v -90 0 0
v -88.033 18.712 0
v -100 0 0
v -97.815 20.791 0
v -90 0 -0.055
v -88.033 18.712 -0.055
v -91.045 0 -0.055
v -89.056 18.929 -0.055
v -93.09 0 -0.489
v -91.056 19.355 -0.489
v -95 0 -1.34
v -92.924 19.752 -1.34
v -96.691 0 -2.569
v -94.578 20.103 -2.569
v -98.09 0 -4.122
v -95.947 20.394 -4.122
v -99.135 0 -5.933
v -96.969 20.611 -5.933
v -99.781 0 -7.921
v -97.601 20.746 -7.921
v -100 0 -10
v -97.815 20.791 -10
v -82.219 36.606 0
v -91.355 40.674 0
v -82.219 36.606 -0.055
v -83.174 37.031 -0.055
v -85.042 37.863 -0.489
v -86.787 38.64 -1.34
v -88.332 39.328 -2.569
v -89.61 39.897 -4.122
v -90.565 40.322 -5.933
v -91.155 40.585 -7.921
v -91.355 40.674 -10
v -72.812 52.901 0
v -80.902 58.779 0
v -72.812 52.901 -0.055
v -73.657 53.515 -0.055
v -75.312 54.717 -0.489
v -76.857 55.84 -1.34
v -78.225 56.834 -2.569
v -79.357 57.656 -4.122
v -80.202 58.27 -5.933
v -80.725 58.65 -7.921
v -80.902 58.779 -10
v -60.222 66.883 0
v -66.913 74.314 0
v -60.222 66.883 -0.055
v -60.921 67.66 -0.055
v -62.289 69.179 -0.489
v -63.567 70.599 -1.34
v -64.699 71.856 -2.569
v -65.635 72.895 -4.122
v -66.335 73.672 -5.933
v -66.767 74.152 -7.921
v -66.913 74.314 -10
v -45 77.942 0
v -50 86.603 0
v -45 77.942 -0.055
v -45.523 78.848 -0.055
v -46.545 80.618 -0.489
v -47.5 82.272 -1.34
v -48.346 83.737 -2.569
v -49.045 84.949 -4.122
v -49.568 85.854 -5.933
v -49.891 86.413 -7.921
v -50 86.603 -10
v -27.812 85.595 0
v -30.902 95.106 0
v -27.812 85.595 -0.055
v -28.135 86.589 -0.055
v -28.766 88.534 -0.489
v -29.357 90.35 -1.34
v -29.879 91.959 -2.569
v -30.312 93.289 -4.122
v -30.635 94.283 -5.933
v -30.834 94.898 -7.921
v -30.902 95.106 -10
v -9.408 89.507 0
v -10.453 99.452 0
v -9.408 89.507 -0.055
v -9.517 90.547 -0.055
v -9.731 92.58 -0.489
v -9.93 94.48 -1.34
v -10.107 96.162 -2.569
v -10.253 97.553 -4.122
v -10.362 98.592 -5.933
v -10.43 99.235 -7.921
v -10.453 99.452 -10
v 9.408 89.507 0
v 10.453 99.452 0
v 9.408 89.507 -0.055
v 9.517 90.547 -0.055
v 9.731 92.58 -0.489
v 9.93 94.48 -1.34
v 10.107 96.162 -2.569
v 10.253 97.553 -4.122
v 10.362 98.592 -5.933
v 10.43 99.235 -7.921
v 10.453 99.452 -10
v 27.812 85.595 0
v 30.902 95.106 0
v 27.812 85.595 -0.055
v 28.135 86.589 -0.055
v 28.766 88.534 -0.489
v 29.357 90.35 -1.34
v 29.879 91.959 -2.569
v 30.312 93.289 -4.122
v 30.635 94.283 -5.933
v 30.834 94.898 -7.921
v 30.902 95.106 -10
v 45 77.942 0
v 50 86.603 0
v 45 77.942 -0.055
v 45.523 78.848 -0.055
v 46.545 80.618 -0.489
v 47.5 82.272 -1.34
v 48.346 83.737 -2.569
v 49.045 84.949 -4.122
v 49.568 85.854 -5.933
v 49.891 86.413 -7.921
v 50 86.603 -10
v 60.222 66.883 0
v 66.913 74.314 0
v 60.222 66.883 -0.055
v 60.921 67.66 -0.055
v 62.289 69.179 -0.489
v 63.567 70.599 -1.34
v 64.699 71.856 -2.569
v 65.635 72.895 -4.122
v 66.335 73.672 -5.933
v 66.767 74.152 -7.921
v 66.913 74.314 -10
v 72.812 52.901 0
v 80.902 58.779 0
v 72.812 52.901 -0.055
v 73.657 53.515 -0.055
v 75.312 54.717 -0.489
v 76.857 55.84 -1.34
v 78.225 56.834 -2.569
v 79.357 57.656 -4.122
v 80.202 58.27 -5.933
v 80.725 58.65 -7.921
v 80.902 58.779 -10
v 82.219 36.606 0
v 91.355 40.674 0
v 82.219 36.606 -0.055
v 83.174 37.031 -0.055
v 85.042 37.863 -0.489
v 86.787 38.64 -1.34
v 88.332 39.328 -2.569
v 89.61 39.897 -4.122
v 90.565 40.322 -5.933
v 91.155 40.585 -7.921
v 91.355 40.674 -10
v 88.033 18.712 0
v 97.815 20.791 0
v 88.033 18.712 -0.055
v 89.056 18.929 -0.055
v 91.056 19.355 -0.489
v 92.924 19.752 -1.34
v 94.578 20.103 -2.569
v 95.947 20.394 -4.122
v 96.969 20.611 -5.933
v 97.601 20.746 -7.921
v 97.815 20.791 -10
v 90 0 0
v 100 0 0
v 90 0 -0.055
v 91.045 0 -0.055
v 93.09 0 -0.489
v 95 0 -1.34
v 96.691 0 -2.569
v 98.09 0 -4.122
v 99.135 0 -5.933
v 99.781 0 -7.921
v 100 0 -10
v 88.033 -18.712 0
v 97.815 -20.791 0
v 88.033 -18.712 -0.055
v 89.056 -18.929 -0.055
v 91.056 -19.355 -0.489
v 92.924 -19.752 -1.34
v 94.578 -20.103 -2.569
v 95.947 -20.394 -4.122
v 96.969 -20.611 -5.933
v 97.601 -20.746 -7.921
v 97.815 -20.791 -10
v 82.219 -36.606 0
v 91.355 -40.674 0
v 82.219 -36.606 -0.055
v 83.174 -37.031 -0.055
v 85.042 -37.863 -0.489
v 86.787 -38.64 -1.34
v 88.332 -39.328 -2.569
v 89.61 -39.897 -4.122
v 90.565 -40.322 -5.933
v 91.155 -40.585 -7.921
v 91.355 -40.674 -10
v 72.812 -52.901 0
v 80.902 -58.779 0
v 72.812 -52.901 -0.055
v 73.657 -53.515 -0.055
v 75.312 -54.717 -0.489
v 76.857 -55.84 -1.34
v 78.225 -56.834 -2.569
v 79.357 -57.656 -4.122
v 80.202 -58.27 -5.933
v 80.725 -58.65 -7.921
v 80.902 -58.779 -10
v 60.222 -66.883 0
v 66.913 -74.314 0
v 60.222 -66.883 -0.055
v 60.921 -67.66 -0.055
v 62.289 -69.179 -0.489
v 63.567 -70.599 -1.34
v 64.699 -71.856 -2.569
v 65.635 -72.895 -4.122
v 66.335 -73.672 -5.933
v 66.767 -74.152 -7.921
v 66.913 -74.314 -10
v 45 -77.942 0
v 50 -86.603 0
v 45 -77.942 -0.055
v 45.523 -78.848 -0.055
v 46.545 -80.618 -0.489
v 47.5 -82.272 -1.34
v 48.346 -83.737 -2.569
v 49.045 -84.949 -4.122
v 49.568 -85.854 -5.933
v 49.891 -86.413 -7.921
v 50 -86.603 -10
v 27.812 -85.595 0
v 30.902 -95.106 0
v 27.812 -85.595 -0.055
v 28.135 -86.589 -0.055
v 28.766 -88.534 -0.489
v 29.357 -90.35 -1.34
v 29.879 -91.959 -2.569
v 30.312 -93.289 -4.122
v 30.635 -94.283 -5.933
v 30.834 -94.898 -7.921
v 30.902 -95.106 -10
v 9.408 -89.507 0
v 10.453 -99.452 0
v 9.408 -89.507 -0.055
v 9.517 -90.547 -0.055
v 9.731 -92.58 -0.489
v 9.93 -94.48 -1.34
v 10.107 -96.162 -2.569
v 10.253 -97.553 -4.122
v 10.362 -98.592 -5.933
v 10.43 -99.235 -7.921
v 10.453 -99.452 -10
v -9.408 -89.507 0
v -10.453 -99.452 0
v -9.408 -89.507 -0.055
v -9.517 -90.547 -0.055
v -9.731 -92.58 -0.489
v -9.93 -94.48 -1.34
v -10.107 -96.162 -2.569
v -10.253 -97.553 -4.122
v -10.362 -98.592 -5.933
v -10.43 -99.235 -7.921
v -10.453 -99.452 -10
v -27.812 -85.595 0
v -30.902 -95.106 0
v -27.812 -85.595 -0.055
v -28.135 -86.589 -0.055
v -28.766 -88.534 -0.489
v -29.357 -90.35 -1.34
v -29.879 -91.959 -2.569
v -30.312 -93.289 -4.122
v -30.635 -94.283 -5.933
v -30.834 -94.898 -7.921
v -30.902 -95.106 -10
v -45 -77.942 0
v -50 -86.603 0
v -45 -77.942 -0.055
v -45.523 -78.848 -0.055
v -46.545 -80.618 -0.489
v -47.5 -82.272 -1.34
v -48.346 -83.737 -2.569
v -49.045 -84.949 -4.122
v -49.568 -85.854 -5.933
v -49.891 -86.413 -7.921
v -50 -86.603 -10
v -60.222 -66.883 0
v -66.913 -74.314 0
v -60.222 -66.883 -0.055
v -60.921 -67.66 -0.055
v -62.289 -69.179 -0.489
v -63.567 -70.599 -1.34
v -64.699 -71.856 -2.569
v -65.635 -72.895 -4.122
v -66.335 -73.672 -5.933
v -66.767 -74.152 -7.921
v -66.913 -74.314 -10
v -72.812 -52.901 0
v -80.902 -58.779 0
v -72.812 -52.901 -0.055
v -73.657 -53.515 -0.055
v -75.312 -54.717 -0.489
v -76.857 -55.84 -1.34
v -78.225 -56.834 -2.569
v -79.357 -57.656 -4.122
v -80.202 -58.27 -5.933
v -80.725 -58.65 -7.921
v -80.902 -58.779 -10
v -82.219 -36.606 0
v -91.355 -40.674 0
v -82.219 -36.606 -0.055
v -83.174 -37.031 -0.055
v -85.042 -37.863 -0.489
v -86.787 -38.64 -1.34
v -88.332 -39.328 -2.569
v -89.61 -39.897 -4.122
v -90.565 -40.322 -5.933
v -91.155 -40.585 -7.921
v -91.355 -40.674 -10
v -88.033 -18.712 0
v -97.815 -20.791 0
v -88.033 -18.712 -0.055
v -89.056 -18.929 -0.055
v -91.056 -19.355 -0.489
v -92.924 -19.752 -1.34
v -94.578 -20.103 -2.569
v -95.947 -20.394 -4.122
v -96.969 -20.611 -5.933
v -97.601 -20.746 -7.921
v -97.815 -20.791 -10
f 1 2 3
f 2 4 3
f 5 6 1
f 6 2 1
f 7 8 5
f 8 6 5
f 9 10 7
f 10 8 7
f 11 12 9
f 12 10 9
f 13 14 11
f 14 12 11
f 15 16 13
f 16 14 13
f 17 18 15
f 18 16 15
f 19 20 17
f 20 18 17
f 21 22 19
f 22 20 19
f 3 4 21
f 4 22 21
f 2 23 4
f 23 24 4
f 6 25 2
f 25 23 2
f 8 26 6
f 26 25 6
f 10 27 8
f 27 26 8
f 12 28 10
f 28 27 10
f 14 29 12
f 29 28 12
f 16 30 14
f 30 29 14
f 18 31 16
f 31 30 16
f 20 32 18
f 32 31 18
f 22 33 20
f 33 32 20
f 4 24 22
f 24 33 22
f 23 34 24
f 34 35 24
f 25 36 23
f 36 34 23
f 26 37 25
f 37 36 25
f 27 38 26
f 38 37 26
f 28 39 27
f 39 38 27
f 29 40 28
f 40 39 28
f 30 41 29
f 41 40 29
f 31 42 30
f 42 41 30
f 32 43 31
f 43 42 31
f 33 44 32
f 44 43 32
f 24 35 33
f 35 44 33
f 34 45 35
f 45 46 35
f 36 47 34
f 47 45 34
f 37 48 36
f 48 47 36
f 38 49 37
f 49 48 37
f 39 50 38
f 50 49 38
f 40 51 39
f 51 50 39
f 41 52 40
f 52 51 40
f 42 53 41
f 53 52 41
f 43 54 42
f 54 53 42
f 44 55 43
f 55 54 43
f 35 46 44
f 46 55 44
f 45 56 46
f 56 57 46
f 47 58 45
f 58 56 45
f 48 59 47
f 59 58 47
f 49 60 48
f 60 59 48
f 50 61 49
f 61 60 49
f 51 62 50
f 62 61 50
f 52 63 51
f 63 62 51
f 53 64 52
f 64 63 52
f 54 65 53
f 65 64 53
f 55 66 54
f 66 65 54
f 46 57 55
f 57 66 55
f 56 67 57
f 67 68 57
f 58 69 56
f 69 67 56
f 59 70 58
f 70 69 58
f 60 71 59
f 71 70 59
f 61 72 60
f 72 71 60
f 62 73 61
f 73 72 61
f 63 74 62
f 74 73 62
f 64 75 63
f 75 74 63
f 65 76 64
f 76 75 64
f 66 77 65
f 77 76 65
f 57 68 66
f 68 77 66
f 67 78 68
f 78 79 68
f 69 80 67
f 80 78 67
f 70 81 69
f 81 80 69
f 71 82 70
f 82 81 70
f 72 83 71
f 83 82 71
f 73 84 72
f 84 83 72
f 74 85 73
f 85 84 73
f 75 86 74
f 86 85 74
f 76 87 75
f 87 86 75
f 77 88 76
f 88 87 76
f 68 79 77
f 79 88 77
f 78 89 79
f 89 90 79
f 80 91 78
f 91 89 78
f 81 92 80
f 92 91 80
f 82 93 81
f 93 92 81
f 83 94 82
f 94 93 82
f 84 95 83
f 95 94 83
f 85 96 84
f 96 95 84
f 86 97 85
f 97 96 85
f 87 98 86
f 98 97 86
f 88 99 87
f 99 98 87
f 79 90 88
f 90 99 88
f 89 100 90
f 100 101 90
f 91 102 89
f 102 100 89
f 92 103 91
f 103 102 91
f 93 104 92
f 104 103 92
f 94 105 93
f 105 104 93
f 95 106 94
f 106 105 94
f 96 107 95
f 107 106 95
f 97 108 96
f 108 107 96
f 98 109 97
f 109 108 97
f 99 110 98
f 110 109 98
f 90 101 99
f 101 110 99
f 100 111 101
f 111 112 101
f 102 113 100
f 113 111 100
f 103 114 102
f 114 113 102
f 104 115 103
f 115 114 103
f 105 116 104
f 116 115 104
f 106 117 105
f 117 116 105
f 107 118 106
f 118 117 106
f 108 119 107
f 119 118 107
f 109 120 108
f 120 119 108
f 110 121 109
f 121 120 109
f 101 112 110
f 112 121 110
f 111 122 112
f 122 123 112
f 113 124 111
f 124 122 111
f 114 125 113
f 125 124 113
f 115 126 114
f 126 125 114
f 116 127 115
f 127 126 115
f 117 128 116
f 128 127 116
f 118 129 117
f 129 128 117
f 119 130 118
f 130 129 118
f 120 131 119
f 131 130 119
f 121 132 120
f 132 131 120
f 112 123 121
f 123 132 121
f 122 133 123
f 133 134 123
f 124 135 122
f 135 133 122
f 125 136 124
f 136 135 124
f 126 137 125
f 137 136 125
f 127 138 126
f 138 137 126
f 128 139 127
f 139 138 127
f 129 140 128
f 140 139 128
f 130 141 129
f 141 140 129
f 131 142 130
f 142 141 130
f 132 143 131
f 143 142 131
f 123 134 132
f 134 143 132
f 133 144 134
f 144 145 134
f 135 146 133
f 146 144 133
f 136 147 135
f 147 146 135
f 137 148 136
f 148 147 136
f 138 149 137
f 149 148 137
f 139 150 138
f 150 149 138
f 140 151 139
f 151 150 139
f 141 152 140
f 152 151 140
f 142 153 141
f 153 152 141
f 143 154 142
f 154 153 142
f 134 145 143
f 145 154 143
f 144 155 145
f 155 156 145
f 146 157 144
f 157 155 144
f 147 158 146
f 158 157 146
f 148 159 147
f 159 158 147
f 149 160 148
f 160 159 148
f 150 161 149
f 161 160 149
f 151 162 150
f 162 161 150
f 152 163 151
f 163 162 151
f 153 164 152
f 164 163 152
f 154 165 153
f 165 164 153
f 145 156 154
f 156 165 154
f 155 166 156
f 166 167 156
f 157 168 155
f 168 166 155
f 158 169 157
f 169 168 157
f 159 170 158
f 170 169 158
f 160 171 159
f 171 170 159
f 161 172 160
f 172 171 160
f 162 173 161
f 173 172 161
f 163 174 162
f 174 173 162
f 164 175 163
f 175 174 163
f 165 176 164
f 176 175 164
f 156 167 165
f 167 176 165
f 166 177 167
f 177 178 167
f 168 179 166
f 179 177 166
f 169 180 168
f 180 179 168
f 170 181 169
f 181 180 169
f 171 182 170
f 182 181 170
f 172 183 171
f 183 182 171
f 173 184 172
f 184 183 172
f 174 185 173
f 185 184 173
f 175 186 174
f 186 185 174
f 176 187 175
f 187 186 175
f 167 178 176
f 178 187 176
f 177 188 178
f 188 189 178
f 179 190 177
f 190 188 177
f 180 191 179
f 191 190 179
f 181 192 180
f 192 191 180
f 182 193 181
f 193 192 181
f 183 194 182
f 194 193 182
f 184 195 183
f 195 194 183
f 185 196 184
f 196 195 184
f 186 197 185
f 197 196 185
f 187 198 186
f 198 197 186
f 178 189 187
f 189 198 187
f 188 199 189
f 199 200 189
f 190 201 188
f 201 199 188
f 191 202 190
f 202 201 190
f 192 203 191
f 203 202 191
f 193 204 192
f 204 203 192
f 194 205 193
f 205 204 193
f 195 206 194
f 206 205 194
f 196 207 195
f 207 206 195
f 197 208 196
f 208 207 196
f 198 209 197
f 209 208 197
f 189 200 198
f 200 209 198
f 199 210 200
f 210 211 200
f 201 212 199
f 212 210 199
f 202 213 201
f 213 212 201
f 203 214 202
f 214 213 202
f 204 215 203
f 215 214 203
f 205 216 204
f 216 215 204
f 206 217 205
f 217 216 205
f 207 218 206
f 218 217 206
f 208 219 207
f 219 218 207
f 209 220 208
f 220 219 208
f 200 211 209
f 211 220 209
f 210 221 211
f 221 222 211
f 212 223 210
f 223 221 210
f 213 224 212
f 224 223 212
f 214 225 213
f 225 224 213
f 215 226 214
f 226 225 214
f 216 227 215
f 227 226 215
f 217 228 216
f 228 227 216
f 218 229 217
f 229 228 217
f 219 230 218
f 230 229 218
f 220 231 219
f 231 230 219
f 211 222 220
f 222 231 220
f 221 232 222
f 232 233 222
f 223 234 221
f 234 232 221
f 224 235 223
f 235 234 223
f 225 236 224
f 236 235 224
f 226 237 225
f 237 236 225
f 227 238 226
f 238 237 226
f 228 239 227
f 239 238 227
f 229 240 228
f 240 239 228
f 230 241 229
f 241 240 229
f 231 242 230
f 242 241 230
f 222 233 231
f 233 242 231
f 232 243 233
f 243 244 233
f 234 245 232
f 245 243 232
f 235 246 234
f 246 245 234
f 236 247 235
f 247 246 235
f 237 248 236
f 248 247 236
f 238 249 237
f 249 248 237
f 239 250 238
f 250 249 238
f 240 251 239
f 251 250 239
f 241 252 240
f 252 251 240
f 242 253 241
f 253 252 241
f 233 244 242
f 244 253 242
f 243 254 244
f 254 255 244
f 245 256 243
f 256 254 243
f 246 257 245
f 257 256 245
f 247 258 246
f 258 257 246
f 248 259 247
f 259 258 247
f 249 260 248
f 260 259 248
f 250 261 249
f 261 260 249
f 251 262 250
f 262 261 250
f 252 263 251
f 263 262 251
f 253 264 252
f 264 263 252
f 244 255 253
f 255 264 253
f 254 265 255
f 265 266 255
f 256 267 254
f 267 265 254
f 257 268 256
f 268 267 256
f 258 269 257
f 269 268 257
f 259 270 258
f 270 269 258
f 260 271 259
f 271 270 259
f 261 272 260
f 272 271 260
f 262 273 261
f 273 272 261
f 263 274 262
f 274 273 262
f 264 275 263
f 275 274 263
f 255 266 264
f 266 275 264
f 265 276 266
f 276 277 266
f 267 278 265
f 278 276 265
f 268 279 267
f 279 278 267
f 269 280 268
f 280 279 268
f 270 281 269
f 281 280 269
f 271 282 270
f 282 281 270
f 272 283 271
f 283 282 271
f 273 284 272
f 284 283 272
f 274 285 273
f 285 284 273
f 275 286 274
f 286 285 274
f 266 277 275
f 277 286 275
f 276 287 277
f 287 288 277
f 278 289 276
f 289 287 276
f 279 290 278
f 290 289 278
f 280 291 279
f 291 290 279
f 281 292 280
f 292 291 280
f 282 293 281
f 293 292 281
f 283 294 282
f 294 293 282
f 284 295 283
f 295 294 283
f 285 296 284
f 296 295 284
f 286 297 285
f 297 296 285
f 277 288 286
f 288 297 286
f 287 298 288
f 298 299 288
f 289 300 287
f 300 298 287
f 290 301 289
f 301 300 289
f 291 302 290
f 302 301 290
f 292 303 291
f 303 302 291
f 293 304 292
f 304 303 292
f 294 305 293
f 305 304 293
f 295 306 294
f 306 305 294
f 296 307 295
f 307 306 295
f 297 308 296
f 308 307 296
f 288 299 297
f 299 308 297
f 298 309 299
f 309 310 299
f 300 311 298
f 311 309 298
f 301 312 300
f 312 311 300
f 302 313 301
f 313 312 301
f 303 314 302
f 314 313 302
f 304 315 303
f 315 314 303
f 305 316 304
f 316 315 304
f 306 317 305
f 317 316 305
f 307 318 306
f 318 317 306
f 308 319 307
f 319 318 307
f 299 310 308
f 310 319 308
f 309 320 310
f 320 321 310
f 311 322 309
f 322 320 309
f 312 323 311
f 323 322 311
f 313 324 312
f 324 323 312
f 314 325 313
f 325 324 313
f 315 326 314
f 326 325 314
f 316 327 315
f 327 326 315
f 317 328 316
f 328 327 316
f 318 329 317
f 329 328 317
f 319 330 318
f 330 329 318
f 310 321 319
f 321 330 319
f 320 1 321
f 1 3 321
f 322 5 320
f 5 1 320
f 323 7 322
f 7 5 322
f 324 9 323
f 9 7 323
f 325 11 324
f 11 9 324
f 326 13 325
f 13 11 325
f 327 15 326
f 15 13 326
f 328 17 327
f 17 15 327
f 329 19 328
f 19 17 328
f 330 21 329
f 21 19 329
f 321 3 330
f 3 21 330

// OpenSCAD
function _v0() = true;
function _v1() = 10;
function _v2() = [_v1(), _v1()];
module _v3() { square(center=_v0(), size=_v2()); }
module _v4() { circle(r=_v1()); }
module _v5 (y=undef) { translate([0, -y, 0]) children(); }
function _v6() = 5;
module _v7() { _v5(y=_v6()) children(); }
module _v8() { _v7() _v4(); }
module _v9 (x=undef) { translate([-x, 0, 0]) children(); }
module _v10() { _v9(x=_v6()) children(); }
module _v11() { _v10() _v8(); }
module _v12() { difference() { _v3(); _v11(); }; }
function _v13() = 0.01;
function _v14() = [_v1(), _v13()];
module _v15() { square(center=_v0(), size=_v14()); }
module _v16 (y=undef) { translate([0, y, 0]) children(); }
module _v17() { _v16(y=_v6()) children(); }
module _v18() { _v17() _v15(); }
function _v19() = [_v13(), _v1()];
module _v20() { square(center=_v0(), size=_v19()); }
module _v21 (x=undef) { translate([x, 0, 0]) children(); }
module _v22() { _v21(x=_v6()) children(); }
module _v23() { _v22() _v20(); }
module _v24() { union() { _v18(); _v23(); }; }
module _v25 () { if($preview) { children(); } }
module _v26() { _v25() _v24(); }
module _v27() { union() { _v12(); _v26(); }; }
module _v28() { _v7() _v27(); }
module _v29() { _v10() _v28(); }
function _v30() = 100;
module _v31() { _v21(x=_v30()) children(); }
module _v32() { _v31() _v29(); }
module _v33() { rotate_extrude() _v32(); }

_v33();
